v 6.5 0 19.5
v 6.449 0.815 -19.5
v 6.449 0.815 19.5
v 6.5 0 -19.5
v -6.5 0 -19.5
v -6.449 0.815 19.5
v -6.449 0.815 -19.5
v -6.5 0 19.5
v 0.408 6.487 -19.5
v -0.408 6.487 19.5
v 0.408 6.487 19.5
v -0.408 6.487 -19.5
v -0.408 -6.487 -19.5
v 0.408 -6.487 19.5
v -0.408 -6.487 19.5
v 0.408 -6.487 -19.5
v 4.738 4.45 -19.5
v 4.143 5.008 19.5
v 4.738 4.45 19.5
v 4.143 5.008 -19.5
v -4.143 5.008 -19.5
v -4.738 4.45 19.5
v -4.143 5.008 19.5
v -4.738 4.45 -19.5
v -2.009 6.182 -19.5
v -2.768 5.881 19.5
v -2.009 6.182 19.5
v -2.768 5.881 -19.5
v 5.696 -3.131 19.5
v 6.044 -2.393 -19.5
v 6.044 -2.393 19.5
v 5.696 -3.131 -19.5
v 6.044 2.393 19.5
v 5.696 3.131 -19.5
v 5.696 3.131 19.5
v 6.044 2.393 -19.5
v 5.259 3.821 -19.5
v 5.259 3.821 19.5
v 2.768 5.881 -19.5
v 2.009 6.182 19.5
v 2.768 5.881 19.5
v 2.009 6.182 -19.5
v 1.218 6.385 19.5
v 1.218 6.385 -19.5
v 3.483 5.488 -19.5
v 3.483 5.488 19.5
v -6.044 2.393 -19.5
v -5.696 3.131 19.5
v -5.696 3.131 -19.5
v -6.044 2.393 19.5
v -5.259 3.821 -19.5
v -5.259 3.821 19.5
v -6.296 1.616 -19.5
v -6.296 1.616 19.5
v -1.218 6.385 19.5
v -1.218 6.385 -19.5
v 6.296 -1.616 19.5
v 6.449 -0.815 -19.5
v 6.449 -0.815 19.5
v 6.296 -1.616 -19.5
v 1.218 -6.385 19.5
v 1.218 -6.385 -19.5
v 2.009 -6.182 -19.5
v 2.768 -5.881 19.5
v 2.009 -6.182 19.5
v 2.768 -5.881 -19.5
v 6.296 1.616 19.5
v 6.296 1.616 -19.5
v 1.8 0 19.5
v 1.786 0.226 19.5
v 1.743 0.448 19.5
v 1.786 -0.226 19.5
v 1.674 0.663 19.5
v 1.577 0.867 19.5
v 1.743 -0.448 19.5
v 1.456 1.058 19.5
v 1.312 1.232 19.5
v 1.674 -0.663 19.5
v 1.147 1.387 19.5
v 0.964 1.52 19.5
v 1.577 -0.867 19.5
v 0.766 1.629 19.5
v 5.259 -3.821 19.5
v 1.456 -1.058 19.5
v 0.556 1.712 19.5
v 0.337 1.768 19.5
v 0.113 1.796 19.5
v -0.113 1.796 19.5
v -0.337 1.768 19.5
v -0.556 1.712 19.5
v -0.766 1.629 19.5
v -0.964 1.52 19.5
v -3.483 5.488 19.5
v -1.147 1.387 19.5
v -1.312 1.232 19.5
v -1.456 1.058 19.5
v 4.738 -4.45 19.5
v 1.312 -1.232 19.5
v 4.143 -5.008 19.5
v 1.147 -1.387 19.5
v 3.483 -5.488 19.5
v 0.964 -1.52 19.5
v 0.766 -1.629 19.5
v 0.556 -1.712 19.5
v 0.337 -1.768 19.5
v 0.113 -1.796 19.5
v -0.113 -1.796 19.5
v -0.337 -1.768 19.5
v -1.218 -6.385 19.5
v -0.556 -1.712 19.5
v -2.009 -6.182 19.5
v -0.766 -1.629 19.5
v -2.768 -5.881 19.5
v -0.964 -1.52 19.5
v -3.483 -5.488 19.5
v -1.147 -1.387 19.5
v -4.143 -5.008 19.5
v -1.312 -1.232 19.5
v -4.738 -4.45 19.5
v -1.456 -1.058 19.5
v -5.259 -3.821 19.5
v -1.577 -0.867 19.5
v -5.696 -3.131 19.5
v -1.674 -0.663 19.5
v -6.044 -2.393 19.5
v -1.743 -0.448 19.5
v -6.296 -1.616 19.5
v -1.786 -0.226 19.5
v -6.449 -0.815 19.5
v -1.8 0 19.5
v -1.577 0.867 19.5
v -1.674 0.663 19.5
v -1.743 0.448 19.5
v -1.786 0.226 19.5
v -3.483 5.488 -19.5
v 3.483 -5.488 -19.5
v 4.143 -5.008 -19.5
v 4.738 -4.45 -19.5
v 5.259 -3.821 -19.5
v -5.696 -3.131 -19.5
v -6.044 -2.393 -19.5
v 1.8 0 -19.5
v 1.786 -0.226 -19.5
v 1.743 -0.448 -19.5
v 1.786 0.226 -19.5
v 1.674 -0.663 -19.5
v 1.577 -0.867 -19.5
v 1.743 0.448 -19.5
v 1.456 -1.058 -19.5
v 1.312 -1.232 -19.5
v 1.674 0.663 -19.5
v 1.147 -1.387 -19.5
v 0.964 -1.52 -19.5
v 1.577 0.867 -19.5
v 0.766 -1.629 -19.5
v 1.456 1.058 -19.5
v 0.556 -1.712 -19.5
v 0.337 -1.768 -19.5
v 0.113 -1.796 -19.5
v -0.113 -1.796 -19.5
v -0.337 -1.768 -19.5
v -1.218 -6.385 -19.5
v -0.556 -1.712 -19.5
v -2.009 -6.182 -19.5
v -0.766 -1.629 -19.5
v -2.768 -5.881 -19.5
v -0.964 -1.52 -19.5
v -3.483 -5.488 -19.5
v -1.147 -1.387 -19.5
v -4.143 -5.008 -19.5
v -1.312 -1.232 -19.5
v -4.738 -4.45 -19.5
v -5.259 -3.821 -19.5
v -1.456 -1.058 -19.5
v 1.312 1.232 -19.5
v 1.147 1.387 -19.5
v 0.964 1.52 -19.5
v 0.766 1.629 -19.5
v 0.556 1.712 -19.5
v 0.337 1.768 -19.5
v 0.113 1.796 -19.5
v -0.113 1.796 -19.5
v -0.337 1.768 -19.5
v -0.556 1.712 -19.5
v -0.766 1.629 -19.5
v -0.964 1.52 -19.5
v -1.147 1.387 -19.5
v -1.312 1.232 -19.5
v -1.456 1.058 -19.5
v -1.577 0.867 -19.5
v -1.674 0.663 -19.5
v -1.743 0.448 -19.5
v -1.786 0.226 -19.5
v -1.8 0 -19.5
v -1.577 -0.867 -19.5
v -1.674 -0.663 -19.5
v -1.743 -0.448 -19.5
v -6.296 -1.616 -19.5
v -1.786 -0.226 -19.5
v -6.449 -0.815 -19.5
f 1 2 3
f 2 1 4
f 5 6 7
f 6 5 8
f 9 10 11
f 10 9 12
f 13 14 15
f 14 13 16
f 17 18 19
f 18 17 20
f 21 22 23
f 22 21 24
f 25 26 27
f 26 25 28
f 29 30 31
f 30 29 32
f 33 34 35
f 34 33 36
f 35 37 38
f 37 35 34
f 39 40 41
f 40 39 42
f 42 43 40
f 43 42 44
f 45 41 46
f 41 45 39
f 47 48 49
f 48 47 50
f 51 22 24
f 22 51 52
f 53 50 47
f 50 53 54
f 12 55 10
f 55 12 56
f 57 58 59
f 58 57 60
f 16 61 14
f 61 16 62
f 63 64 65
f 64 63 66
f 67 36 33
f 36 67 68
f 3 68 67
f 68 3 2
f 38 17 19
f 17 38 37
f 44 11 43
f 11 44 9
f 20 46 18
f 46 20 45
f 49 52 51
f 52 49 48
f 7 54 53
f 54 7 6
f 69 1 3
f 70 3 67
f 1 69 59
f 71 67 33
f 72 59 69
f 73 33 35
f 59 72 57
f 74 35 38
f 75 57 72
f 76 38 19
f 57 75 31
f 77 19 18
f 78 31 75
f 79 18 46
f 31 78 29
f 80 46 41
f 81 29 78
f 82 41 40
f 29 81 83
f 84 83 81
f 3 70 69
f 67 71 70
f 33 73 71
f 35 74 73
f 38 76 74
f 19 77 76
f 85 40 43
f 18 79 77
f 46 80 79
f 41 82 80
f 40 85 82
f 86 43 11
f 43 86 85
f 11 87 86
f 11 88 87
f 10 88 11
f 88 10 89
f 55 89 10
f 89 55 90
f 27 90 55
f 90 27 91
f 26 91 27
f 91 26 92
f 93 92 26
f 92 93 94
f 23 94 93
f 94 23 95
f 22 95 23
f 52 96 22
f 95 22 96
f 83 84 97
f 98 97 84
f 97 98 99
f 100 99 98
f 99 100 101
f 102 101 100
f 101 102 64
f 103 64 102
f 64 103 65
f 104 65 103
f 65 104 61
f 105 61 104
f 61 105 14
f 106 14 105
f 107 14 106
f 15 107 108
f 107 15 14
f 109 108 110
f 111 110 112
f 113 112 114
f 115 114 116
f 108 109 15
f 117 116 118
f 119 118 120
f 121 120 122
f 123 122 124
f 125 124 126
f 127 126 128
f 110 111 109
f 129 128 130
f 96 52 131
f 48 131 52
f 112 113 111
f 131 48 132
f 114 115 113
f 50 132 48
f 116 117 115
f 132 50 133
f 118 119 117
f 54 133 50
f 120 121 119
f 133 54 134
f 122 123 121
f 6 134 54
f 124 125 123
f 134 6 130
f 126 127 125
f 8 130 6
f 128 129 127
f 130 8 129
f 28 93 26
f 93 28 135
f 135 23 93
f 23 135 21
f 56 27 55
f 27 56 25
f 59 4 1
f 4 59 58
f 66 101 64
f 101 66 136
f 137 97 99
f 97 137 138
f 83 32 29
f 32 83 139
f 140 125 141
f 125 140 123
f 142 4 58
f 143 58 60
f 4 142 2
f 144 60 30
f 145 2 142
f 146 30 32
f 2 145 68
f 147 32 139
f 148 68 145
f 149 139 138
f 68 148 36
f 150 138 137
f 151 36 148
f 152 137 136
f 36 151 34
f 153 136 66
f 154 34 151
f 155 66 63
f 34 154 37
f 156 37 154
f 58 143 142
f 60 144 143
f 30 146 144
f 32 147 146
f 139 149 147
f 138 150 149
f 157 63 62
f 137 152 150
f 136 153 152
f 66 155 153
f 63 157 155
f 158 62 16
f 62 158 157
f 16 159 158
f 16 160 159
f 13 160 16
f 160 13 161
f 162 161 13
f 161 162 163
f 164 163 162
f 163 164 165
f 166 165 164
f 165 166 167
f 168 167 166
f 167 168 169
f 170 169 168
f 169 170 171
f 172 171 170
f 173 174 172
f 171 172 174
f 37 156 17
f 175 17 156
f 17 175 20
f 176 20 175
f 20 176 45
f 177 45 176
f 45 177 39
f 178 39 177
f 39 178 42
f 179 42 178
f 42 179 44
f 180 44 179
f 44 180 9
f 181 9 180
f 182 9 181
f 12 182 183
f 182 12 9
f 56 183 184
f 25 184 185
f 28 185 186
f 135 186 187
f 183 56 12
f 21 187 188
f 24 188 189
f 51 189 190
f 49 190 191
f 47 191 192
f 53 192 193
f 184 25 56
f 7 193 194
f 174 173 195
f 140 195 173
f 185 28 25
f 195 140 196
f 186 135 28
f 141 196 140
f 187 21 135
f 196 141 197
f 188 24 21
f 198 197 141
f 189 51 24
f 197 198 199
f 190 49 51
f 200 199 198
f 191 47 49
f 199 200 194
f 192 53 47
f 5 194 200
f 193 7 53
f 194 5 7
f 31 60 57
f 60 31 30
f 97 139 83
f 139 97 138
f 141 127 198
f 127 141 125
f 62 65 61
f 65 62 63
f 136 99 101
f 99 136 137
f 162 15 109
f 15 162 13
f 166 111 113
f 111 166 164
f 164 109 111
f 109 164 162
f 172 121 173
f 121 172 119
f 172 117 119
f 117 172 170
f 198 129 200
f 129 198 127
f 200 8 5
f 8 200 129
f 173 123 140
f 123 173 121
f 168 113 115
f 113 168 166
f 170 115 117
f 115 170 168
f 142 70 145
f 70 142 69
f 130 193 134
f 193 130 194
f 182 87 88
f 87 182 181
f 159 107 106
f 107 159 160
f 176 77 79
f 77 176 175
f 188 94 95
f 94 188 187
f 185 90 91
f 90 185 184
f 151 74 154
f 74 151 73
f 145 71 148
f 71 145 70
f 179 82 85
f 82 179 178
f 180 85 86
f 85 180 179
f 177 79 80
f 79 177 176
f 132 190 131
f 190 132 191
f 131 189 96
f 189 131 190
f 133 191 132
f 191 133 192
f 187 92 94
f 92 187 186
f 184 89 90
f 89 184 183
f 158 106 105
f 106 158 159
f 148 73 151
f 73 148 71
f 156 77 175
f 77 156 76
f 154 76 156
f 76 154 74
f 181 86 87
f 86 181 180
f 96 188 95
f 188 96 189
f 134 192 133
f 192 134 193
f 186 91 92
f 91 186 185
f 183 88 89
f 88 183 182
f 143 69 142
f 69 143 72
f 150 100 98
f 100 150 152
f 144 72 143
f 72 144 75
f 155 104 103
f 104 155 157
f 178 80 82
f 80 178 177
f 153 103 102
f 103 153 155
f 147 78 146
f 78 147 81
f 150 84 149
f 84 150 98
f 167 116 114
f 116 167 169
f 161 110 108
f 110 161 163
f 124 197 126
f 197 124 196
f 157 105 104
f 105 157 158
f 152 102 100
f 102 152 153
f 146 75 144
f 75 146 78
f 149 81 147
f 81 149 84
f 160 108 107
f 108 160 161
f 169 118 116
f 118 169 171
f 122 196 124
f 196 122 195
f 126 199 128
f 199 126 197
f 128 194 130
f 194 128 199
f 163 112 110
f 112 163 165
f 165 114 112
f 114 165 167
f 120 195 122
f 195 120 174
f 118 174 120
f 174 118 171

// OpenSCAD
$fn = 50;


difference() {
	union() {
		translate(v = [0, 0, -19.5000000000]) {
			cylinder(h = 39, r = 6.5000000000);
		}
	}
	union() {
		translate(v = [0, 0, -100.0000000000]) {
			cylinder(h = 200, r = 1.8000000000);
		}
	}
}
